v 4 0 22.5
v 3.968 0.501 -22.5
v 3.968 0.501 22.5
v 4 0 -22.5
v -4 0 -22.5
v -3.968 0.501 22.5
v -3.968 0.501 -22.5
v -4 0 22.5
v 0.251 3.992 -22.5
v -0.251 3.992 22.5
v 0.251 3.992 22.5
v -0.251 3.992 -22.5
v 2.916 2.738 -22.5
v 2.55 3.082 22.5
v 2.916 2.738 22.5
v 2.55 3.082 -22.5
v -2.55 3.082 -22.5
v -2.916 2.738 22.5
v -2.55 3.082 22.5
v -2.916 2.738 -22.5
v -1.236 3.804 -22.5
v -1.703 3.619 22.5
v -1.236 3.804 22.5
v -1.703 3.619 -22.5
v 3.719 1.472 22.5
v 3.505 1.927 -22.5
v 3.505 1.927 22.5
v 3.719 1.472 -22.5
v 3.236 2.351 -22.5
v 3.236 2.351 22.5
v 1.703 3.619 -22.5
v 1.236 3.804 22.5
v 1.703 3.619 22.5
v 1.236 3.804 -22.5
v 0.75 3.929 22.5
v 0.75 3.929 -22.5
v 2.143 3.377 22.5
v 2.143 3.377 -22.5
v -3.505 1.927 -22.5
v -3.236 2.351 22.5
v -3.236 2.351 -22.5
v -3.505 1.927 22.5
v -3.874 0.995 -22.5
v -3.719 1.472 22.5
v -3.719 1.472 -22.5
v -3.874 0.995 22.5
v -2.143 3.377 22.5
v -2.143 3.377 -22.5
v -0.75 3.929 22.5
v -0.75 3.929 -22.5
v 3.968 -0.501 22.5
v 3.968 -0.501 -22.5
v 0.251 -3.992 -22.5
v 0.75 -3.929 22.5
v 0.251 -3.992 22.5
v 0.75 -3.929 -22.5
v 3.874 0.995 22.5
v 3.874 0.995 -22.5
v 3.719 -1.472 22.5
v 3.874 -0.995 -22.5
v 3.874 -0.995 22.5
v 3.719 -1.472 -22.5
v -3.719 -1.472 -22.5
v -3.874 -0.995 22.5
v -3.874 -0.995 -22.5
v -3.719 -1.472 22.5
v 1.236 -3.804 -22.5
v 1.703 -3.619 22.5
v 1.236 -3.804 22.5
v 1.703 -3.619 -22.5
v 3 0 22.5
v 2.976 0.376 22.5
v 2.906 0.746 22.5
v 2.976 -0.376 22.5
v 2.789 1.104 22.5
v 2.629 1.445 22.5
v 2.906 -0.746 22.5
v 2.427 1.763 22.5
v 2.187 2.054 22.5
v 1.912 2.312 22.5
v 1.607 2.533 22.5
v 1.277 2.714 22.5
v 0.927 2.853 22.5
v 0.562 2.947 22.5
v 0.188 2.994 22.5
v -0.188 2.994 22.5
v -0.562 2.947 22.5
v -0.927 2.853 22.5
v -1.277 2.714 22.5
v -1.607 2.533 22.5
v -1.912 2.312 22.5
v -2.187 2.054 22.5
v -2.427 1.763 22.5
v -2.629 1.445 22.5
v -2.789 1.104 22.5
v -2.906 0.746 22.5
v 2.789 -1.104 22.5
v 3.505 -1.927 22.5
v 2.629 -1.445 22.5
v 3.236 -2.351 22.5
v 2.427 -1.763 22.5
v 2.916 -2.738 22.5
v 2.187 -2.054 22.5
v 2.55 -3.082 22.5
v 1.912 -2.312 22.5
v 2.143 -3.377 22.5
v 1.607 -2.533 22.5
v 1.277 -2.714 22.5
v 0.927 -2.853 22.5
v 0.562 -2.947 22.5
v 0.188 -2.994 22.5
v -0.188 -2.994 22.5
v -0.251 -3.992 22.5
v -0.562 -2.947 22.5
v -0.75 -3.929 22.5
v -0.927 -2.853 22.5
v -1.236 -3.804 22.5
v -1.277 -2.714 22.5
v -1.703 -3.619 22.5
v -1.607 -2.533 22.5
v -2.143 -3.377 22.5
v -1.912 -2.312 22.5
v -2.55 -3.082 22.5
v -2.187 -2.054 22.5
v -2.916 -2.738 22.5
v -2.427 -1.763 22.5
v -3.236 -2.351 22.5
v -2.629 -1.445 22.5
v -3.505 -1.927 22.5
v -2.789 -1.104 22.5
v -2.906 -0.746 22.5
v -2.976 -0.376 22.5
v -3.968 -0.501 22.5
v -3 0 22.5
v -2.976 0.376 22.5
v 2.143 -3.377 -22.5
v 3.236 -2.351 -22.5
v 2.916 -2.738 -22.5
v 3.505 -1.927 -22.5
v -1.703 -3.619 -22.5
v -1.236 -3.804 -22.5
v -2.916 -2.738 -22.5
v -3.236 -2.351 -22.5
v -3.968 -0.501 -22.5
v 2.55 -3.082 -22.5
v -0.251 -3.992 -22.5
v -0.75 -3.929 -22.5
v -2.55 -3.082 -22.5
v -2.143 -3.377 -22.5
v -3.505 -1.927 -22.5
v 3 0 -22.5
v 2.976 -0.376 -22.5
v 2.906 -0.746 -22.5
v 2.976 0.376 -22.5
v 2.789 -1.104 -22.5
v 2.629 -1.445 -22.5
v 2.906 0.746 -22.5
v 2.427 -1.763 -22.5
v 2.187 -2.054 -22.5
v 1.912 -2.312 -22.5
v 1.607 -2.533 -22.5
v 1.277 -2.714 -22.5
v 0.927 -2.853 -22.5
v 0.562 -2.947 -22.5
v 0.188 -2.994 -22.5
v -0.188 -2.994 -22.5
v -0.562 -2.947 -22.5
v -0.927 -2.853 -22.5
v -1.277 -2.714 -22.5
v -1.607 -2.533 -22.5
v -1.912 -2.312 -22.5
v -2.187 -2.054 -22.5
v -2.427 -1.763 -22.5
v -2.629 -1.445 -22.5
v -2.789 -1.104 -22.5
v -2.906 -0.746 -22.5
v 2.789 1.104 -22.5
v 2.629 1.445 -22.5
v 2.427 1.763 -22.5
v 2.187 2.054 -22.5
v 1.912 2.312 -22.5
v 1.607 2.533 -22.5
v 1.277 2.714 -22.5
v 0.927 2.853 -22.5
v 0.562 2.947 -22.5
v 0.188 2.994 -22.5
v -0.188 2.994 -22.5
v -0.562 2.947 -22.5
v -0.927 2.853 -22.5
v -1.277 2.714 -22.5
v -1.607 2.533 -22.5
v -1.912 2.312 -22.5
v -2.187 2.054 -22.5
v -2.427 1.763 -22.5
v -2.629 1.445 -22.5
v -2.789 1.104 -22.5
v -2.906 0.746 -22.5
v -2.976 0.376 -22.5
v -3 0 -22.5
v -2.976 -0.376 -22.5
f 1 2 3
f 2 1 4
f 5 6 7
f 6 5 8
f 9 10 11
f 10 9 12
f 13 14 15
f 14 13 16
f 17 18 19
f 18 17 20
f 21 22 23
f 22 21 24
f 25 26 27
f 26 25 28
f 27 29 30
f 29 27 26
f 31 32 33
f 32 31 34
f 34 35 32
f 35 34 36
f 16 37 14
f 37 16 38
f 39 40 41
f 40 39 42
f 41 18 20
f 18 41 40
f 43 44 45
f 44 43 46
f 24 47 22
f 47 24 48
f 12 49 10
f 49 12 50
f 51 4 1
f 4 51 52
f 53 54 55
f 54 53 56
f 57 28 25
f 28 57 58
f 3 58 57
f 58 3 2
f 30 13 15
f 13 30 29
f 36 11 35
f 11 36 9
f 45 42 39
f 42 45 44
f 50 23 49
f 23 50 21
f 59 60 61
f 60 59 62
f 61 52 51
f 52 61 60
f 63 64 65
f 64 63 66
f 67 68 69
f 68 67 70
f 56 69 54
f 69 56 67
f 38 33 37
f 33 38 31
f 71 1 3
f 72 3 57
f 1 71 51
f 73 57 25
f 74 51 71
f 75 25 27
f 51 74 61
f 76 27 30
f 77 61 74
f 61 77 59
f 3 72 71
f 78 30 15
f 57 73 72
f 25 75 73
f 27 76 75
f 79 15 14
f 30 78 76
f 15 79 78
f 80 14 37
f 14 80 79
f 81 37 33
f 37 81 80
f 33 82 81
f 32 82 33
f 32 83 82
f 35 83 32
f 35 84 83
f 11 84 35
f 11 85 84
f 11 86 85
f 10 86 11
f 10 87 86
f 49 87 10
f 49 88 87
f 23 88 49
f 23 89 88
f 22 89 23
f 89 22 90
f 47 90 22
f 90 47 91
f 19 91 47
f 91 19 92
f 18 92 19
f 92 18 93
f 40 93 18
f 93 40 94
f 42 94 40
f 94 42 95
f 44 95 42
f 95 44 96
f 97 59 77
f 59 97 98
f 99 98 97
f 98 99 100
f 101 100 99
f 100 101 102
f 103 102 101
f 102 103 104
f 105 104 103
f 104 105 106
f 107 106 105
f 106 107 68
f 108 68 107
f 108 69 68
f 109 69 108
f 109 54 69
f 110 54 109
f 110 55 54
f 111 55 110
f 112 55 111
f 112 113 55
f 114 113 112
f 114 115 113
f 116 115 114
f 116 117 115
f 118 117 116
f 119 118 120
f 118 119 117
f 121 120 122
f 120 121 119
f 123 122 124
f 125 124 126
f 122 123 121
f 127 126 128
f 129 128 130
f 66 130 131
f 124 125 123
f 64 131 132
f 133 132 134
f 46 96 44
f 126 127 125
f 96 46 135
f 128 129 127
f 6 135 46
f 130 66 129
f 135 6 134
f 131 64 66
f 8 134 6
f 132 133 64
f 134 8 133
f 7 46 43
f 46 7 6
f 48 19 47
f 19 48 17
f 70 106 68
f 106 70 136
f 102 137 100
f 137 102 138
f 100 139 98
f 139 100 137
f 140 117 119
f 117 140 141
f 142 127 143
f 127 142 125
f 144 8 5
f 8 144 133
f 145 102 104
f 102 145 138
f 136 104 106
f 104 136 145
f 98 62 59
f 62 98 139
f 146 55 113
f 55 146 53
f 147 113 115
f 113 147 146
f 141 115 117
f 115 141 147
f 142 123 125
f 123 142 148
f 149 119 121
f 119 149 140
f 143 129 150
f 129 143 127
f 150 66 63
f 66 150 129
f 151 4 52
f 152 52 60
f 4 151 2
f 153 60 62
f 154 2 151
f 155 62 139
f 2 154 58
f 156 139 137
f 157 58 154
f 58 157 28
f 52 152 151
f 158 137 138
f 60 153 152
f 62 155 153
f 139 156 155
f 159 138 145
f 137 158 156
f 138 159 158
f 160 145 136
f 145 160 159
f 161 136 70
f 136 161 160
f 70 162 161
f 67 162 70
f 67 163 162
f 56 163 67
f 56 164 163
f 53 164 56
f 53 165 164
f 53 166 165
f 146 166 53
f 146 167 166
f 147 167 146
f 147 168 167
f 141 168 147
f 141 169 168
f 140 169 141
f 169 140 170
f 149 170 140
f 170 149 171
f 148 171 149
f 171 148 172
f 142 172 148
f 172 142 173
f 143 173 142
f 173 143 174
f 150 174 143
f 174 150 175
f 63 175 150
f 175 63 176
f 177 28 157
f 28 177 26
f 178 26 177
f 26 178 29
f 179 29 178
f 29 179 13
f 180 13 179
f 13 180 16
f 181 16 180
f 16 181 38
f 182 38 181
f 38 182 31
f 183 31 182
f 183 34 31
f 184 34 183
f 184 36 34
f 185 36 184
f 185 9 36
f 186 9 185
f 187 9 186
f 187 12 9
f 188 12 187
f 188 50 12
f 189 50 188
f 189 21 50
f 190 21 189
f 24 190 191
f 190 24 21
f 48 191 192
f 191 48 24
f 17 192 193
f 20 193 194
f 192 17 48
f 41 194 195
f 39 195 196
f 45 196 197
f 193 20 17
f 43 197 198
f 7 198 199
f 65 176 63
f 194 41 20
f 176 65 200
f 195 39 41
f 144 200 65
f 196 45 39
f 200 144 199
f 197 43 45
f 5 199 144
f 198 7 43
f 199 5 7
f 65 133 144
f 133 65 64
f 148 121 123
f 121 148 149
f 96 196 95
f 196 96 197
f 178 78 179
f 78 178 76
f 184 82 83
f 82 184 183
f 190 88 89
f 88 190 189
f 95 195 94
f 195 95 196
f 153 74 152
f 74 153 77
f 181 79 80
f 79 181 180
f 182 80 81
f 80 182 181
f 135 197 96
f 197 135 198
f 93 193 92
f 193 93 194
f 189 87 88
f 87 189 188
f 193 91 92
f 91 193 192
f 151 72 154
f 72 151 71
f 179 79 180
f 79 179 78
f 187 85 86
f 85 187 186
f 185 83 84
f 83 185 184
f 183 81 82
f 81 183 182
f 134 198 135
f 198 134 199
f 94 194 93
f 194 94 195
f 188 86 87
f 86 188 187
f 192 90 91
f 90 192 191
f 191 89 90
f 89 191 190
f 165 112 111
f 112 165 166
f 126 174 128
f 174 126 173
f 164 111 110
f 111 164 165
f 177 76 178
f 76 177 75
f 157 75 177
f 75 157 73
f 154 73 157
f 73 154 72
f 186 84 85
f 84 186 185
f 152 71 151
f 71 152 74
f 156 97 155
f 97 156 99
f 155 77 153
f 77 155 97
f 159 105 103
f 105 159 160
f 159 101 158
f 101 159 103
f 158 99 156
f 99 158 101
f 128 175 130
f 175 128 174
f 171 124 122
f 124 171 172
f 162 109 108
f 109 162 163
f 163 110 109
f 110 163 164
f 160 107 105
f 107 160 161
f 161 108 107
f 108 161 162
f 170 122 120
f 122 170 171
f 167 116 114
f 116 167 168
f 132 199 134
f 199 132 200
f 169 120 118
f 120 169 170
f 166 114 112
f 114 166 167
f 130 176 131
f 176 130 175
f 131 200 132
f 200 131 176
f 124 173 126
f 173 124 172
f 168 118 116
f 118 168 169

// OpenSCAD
$fn = 50;


difference() {
	union() {
		translate(v = [0, 0, -22.5000000000]) {
			cylinder(h = 45, r = 4.0000000000);
		}
	}
	union() {
		translate(v = [0, 0, -100.0000000000]) {
			cylinder(h = 200, r = 3.0000000000);
		}
	}
}
